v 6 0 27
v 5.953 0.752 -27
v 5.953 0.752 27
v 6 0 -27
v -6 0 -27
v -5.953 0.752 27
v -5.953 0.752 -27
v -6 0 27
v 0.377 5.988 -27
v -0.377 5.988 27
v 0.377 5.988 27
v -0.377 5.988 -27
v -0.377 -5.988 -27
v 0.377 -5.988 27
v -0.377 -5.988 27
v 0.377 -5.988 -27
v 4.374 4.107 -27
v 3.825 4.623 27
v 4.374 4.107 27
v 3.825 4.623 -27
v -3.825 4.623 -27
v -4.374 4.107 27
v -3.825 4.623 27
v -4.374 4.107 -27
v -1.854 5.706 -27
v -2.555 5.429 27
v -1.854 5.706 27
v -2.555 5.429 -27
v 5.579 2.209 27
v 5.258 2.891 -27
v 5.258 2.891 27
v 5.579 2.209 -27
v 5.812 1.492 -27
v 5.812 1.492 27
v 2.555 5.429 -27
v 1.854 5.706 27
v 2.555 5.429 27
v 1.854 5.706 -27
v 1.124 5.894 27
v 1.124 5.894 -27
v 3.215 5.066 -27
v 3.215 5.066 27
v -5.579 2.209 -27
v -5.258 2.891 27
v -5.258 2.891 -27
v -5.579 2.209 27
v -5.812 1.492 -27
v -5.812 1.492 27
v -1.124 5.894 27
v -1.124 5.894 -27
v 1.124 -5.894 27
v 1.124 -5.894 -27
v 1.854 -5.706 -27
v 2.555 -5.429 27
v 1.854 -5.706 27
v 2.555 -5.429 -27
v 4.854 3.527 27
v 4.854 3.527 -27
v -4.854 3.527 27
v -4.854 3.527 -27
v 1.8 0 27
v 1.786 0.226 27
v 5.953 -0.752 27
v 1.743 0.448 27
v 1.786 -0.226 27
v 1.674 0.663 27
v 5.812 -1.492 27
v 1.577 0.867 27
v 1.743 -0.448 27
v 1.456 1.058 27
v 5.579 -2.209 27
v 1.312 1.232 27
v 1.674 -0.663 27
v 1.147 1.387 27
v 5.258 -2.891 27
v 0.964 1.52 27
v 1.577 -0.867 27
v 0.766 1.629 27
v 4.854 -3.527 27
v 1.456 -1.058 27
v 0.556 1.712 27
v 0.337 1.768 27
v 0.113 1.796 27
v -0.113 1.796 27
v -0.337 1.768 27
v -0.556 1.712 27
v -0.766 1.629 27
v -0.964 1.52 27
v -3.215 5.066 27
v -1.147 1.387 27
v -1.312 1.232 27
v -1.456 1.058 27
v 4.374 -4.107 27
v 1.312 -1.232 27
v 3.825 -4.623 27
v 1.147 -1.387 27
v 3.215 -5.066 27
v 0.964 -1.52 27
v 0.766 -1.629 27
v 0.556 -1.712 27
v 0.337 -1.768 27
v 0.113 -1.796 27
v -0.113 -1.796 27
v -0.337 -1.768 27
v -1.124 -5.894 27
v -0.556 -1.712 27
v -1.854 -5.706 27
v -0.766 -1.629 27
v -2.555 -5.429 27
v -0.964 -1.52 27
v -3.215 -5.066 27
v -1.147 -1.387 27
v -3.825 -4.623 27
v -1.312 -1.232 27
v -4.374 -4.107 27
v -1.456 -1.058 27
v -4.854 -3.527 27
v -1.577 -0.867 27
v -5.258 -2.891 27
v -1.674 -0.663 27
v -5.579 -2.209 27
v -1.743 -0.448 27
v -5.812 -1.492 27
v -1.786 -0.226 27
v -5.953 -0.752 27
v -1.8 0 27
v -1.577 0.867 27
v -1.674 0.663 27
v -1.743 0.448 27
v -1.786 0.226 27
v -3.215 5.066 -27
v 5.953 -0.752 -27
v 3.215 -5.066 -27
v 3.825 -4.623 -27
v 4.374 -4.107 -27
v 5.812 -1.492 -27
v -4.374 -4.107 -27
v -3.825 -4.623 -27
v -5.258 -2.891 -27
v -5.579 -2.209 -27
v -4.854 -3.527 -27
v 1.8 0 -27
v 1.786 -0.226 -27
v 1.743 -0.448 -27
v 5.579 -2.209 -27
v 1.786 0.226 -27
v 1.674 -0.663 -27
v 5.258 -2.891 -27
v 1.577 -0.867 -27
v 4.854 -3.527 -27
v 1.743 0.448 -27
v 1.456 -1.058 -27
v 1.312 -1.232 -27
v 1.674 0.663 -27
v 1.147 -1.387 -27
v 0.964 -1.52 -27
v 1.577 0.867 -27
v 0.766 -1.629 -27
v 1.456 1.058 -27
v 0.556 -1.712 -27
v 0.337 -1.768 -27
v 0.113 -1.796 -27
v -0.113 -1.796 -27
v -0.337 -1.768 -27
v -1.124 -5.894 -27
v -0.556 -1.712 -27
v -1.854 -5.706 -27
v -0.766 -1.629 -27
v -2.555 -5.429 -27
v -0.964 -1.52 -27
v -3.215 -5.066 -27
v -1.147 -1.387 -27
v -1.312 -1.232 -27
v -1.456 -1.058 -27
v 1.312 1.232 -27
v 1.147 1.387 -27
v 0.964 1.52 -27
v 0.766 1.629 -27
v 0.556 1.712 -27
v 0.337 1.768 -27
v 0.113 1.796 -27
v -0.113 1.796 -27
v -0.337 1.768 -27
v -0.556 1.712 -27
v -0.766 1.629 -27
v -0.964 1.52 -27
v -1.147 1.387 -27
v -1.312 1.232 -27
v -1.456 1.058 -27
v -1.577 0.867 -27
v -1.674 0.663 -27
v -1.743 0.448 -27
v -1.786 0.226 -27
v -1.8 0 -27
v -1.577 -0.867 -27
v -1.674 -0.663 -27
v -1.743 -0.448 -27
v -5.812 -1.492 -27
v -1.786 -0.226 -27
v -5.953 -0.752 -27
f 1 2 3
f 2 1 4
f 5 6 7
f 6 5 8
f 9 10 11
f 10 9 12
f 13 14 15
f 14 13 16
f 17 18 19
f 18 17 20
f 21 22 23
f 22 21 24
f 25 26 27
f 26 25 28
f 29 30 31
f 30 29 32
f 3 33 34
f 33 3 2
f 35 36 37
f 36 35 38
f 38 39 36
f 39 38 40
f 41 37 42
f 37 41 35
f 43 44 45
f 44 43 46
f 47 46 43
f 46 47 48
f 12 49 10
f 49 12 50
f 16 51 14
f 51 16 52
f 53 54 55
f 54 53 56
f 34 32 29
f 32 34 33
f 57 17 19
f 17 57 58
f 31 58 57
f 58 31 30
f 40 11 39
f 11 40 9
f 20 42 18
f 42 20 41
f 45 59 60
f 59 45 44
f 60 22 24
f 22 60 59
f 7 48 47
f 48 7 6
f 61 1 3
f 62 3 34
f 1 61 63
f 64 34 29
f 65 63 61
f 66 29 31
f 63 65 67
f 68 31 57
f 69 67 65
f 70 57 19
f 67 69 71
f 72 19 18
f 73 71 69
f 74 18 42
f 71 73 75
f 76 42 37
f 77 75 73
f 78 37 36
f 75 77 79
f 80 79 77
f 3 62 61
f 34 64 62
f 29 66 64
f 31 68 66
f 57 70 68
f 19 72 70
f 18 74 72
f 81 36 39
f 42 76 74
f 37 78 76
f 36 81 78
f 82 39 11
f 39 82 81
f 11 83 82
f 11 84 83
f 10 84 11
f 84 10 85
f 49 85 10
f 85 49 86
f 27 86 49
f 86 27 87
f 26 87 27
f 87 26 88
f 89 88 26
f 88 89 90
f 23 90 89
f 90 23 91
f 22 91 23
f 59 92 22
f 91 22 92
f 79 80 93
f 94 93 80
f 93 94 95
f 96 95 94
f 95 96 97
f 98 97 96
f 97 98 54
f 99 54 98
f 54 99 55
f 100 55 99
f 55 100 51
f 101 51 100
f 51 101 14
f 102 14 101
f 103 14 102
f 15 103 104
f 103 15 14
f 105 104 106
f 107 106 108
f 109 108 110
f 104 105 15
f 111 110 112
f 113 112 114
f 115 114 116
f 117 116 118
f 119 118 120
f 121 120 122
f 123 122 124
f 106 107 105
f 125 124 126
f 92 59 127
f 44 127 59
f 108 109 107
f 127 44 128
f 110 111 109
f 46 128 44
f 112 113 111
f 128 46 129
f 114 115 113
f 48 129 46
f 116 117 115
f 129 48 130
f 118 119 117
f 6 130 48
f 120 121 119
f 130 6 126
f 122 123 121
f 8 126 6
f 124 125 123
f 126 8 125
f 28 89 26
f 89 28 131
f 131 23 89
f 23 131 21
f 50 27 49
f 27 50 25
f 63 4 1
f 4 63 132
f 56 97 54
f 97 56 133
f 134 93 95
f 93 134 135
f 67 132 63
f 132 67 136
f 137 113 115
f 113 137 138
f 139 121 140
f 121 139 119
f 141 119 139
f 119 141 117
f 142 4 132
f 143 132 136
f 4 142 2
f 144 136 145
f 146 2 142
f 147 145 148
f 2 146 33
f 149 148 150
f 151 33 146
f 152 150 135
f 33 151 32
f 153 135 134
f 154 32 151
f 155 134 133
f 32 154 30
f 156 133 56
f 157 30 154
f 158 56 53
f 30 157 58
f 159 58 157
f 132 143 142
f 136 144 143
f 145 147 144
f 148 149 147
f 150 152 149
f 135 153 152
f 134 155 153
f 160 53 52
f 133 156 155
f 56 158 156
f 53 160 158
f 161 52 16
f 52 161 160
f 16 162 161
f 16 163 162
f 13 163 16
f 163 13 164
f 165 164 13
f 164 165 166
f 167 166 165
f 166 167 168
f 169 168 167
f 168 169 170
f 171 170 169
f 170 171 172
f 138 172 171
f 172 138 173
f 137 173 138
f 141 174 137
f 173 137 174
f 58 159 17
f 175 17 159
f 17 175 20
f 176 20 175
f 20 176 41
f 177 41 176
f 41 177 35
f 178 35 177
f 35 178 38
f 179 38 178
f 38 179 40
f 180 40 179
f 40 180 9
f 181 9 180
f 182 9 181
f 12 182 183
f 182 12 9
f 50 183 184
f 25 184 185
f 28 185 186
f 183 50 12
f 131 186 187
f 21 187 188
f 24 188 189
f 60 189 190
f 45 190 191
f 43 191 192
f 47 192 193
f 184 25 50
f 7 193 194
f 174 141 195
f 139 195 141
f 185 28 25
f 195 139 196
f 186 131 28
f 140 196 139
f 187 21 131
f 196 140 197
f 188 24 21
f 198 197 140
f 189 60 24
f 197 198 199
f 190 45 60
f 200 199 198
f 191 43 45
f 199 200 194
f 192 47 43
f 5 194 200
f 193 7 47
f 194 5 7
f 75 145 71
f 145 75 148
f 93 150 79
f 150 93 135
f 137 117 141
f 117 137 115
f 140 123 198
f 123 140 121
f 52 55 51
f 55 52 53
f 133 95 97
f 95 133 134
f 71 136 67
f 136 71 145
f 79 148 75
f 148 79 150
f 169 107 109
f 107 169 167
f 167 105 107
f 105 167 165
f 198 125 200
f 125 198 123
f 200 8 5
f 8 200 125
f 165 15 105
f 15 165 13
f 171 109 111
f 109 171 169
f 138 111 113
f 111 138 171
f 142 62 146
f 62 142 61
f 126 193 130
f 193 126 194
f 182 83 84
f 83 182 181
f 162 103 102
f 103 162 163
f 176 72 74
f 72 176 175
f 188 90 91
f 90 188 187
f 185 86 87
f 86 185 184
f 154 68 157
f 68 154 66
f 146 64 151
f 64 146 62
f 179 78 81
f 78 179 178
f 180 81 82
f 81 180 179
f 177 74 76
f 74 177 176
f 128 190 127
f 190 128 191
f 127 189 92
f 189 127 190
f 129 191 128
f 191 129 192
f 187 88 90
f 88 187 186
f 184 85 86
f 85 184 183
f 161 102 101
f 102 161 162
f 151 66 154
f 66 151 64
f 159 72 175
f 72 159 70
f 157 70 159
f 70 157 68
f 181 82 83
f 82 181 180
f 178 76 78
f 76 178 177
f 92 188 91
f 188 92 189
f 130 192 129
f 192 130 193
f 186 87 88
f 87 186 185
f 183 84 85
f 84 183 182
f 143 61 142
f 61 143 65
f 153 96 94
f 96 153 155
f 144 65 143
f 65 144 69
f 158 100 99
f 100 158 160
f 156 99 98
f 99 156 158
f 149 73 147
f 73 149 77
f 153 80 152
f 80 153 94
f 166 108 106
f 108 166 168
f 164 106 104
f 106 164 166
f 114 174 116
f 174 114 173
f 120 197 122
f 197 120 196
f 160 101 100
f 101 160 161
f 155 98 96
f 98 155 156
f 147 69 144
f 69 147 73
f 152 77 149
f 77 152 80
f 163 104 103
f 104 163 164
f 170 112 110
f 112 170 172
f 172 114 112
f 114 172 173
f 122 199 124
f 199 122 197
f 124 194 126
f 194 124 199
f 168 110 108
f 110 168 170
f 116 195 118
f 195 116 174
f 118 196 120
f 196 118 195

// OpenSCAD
$fn = 50;


difference() {
	union() {
		translate(v = [0, 0, -27.0000000000]) {
			cylinder(h = 54, r = 6.0000000000);
		}
	}
	union() {
		#translate(v = [0, 0, -100.0000000000]) {
			cylinder(h = 200, r = 1.8000000000);
		}
	}
}
